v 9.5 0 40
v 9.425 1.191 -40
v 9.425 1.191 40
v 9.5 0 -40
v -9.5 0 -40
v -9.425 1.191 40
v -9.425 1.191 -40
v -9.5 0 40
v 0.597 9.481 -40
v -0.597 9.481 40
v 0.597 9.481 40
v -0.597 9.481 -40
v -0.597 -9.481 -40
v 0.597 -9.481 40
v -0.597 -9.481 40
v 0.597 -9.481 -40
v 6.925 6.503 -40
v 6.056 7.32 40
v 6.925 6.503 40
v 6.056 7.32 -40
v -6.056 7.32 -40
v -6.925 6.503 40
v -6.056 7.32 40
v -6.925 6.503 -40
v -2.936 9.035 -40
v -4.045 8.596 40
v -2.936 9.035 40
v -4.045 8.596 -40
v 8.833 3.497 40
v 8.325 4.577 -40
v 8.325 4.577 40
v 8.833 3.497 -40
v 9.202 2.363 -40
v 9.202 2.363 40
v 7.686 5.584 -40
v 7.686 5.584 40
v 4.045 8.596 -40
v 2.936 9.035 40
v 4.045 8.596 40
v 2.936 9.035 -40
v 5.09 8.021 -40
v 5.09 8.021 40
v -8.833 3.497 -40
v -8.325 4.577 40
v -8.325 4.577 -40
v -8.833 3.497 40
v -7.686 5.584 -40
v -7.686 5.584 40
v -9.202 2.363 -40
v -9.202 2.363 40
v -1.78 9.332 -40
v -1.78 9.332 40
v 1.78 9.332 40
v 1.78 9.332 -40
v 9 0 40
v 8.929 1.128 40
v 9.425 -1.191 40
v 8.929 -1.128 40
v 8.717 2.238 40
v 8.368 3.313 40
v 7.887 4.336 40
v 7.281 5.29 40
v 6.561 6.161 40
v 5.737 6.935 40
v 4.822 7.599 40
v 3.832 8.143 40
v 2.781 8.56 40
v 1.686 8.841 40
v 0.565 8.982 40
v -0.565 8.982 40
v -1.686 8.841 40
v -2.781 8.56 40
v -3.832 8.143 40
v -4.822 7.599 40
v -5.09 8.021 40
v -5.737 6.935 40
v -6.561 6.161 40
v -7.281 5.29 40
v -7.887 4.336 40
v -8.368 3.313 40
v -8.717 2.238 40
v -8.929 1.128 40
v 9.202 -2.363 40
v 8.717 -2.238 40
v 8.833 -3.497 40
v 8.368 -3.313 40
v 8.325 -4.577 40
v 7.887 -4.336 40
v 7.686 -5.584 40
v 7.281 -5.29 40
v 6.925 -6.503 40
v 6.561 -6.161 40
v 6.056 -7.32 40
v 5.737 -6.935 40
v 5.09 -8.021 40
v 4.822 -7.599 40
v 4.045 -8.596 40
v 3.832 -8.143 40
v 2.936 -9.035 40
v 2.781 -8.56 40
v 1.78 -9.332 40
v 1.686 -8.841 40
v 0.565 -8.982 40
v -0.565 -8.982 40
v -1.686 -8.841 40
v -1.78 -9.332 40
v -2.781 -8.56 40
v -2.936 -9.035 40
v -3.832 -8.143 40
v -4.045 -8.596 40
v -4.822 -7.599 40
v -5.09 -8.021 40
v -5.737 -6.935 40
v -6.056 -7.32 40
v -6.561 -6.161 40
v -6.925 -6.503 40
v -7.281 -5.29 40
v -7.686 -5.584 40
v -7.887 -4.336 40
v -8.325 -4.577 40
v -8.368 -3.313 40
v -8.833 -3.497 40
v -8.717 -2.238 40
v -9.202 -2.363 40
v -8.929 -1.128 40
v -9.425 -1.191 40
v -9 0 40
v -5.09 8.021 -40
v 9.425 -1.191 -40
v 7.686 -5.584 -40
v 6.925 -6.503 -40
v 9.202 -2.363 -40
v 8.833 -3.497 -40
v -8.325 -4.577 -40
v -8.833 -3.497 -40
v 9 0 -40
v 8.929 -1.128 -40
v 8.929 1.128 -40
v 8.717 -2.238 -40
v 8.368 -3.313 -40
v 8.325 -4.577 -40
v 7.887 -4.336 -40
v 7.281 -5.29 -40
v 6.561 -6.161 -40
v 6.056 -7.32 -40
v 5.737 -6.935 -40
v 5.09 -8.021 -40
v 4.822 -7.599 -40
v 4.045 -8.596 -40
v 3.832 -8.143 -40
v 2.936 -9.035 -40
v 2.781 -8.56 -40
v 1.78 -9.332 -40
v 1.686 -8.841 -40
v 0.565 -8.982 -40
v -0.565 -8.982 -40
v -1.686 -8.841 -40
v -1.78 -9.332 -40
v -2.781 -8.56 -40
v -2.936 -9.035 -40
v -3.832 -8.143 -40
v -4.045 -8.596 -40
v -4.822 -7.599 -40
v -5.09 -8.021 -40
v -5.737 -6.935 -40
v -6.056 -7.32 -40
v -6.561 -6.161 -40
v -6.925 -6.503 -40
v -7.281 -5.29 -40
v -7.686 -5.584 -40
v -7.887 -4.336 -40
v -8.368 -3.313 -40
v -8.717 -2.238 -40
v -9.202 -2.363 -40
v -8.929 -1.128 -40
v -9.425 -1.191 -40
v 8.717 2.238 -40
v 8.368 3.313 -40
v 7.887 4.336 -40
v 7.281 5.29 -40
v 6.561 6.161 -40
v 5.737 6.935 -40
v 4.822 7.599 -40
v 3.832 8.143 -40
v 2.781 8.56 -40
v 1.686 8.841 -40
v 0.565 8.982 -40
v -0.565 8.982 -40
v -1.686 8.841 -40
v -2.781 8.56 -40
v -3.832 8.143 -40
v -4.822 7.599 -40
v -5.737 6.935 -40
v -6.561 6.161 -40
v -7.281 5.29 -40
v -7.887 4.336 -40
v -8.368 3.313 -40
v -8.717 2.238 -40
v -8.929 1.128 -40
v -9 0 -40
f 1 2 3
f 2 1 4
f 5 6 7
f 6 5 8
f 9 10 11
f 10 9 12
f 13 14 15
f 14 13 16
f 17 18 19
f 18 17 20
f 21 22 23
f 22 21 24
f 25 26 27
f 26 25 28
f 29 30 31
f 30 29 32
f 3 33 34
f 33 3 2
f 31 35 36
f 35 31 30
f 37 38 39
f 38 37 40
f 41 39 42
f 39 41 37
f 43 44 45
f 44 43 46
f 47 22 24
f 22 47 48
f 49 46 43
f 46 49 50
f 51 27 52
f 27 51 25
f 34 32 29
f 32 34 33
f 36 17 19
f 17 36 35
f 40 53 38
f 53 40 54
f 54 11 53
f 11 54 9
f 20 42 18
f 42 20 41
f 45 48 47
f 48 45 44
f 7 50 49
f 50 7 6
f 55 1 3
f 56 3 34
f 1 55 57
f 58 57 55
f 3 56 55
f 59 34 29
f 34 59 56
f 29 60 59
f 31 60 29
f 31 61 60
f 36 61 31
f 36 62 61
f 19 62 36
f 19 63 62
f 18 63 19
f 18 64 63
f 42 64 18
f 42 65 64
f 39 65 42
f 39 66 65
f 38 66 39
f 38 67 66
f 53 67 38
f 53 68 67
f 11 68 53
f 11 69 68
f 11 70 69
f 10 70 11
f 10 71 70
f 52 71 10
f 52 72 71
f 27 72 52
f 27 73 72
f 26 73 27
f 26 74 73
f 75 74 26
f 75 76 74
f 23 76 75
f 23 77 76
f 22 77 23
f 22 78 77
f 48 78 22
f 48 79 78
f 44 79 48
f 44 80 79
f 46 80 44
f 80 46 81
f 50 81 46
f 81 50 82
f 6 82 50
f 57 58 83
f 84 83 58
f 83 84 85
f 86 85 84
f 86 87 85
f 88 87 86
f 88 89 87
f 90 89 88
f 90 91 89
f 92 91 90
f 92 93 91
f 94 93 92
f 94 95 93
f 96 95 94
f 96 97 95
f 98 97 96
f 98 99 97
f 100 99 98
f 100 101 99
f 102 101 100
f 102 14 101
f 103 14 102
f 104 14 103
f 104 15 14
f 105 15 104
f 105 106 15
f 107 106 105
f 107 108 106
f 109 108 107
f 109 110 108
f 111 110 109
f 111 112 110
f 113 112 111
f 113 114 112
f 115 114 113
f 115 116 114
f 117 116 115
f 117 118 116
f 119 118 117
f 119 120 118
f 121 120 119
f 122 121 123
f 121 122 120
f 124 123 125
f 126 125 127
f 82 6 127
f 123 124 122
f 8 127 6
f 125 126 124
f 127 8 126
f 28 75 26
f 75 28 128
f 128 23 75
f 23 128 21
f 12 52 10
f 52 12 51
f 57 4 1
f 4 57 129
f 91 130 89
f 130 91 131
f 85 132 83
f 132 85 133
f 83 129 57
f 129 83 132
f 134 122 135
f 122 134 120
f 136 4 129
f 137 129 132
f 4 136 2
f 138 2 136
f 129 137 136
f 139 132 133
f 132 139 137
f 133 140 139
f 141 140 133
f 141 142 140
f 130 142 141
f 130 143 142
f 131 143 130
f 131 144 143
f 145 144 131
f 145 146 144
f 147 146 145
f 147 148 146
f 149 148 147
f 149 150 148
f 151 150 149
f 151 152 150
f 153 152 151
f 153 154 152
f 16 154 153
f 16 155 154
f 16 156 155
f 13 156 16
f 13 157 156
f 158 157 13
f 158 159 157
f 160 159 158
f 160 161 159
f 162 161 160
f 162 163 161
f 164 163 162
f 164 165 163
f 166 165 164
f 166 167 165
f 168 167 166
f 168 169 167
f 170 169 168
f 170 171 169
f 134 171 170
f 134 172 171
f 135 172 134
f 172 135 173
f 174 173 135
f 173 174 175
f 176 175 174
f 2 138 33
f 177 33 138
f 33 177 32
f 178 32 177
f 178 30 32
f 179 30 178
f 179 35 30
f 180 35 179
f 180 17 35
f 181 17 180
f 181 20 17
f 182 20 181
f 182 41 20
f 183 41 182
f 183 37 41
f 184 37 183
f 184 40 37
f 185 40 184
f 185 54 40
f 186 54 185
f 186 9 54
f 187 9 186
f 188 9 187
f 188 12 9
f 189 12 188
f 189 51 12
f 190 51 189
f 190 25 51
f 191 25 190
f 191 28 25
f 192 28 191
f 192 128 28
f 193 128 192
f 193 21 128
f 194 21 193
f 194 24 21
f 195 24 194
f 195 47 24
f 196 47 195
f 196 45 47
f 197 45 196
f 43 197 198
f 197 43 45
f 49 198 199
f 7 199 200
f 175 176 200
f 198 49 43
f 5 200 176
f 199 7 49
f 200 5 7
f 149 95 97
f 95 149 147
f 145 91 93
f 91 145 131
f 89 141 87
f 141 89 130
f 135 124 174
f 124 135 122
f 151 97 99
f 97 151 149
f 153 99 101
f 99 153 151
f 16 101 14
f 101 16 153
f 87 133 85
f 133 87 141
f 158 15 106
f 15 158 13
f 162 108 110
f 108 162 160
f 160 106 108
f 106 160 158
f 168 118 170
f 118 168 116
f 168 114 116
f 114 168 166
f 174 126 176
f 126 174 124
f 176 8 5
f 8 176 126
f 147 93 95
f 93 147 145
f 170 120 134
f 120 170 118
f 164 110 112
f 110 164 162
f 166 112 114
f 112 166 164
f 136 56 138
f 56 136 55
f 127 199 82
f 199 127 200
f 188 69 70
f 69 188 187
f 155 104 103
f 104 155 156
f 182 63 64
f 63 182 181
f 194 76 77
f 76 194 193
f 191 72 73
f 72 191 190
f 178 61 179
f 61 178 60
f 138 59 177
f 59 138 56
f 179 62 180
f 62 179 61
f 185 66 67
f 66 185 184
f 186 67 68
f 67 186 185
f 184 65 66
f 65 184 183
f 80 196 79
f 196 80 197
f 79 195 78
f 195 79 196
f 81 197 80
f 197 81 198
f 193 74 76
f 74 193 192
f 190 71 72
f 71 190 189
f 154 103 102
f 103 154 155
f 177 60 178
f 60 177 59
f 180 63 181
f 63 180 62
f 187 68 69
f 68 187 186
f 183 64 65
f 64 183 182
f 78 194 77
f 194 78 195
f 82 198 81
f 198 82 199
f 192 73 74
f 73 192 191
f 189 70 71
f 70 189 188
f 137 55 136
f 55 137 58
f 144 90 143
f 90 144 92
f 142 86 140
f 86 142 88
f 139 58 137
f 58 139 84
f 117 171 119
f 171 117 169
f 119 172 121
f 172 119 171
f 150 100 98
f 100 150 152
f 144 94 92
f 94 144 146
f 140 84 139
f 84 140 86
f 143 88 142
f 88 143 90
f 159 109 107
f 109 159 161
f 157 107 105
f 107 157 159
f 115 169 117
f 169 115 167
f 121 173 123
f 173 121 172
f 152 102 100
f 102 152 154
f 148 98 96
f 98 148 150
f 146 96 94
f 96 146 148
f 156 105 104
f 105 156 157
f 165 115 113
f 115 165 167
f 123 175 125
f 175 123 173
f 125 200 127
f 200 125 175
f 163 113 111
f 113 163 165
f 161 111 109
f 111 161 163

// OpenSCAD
$fn = 50;


difference() {
	union() {
		translate(v = [0, 0, -40.0000000000]) {
			cylinder(h = 80, r = 9.5000000000);
		}
	}
	union() {
		translate(v = [0, 0, -100.0000000000]) {
			cylinder(h = 200, r = 9);
		}
	}
}
